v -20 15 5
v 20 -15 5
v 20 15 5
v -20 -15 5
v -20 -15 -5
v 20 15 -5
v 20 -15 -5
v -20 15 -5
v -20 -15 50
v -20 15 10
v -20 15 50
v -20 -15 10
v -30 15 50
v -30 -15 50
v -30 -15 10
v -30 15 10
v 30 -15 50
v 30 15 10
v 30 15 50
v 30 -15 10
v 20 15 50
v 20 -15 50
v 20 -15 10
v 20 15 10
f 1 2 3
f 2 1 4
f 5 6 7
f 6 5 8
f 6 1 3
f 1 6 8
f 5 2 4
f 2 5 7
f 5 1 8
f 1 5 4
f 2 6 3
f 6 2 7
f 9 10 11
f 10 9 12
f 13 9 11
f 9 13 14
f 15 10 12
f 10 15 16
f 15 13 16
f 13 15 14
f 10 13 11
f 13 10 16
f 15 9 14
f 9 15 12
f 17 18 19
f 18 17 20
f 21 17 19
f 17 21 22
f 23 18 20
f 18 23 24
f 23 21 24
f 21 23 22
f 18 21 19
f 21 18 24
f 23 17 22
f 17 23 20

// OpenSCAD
// Base block dimensions
base_length = 60;  // Length of the base block
base_width = 30;   // Width of the base block
base_height = 10;  // Height of the base block
slot_width = 10;   // Width of the vertical arm slots
slot_depth = 20;   // Depth of the vertical arm slots

// Vertical arm dimensions
arm_width = slot_width;  // Width of the vertical arms
arm_depth = slot_depth;  // Depth of the vertical arms
arm_height = 40;         // Height of the vertical arms

// Base block
module base_block() {
    difference() {
        cube([base_length, base_width, base_height], center = true);
        translate([-base_length / 2 + slot_width / 2, 0, base_height / 2]) {
            cube([slot_width, base_width, slot_depth], center = true);
        }
        translate([base_length / 2 - slot_width / 2, 0, base_height / 2]) {
            cube([slot_width, base_width, slot_depth], center = true);
        }
    }
}

// Vertical arm (left)
module vertical_arm_left() {
    translate([-base_length / 2 + slot_width / 2, 0, base_height + arm_height / 2]) {
        cube([arm_width, base_width, arm_height], center = true);
    }
}

// Vertical arm (right)
module vertical_arm_right() {
    translate([base_length / 2 - slot_width / 2, 0, base_height + arm_height / 2]) {
        cube([arm_width, base_width, arm_height], center = true);
    }
}

// Assemble the model
module flexible_coupling() {
    base_block();
    vertical_arm_left();
    vertical_arm_right();
}

// Render the model
flexible_coupling();
